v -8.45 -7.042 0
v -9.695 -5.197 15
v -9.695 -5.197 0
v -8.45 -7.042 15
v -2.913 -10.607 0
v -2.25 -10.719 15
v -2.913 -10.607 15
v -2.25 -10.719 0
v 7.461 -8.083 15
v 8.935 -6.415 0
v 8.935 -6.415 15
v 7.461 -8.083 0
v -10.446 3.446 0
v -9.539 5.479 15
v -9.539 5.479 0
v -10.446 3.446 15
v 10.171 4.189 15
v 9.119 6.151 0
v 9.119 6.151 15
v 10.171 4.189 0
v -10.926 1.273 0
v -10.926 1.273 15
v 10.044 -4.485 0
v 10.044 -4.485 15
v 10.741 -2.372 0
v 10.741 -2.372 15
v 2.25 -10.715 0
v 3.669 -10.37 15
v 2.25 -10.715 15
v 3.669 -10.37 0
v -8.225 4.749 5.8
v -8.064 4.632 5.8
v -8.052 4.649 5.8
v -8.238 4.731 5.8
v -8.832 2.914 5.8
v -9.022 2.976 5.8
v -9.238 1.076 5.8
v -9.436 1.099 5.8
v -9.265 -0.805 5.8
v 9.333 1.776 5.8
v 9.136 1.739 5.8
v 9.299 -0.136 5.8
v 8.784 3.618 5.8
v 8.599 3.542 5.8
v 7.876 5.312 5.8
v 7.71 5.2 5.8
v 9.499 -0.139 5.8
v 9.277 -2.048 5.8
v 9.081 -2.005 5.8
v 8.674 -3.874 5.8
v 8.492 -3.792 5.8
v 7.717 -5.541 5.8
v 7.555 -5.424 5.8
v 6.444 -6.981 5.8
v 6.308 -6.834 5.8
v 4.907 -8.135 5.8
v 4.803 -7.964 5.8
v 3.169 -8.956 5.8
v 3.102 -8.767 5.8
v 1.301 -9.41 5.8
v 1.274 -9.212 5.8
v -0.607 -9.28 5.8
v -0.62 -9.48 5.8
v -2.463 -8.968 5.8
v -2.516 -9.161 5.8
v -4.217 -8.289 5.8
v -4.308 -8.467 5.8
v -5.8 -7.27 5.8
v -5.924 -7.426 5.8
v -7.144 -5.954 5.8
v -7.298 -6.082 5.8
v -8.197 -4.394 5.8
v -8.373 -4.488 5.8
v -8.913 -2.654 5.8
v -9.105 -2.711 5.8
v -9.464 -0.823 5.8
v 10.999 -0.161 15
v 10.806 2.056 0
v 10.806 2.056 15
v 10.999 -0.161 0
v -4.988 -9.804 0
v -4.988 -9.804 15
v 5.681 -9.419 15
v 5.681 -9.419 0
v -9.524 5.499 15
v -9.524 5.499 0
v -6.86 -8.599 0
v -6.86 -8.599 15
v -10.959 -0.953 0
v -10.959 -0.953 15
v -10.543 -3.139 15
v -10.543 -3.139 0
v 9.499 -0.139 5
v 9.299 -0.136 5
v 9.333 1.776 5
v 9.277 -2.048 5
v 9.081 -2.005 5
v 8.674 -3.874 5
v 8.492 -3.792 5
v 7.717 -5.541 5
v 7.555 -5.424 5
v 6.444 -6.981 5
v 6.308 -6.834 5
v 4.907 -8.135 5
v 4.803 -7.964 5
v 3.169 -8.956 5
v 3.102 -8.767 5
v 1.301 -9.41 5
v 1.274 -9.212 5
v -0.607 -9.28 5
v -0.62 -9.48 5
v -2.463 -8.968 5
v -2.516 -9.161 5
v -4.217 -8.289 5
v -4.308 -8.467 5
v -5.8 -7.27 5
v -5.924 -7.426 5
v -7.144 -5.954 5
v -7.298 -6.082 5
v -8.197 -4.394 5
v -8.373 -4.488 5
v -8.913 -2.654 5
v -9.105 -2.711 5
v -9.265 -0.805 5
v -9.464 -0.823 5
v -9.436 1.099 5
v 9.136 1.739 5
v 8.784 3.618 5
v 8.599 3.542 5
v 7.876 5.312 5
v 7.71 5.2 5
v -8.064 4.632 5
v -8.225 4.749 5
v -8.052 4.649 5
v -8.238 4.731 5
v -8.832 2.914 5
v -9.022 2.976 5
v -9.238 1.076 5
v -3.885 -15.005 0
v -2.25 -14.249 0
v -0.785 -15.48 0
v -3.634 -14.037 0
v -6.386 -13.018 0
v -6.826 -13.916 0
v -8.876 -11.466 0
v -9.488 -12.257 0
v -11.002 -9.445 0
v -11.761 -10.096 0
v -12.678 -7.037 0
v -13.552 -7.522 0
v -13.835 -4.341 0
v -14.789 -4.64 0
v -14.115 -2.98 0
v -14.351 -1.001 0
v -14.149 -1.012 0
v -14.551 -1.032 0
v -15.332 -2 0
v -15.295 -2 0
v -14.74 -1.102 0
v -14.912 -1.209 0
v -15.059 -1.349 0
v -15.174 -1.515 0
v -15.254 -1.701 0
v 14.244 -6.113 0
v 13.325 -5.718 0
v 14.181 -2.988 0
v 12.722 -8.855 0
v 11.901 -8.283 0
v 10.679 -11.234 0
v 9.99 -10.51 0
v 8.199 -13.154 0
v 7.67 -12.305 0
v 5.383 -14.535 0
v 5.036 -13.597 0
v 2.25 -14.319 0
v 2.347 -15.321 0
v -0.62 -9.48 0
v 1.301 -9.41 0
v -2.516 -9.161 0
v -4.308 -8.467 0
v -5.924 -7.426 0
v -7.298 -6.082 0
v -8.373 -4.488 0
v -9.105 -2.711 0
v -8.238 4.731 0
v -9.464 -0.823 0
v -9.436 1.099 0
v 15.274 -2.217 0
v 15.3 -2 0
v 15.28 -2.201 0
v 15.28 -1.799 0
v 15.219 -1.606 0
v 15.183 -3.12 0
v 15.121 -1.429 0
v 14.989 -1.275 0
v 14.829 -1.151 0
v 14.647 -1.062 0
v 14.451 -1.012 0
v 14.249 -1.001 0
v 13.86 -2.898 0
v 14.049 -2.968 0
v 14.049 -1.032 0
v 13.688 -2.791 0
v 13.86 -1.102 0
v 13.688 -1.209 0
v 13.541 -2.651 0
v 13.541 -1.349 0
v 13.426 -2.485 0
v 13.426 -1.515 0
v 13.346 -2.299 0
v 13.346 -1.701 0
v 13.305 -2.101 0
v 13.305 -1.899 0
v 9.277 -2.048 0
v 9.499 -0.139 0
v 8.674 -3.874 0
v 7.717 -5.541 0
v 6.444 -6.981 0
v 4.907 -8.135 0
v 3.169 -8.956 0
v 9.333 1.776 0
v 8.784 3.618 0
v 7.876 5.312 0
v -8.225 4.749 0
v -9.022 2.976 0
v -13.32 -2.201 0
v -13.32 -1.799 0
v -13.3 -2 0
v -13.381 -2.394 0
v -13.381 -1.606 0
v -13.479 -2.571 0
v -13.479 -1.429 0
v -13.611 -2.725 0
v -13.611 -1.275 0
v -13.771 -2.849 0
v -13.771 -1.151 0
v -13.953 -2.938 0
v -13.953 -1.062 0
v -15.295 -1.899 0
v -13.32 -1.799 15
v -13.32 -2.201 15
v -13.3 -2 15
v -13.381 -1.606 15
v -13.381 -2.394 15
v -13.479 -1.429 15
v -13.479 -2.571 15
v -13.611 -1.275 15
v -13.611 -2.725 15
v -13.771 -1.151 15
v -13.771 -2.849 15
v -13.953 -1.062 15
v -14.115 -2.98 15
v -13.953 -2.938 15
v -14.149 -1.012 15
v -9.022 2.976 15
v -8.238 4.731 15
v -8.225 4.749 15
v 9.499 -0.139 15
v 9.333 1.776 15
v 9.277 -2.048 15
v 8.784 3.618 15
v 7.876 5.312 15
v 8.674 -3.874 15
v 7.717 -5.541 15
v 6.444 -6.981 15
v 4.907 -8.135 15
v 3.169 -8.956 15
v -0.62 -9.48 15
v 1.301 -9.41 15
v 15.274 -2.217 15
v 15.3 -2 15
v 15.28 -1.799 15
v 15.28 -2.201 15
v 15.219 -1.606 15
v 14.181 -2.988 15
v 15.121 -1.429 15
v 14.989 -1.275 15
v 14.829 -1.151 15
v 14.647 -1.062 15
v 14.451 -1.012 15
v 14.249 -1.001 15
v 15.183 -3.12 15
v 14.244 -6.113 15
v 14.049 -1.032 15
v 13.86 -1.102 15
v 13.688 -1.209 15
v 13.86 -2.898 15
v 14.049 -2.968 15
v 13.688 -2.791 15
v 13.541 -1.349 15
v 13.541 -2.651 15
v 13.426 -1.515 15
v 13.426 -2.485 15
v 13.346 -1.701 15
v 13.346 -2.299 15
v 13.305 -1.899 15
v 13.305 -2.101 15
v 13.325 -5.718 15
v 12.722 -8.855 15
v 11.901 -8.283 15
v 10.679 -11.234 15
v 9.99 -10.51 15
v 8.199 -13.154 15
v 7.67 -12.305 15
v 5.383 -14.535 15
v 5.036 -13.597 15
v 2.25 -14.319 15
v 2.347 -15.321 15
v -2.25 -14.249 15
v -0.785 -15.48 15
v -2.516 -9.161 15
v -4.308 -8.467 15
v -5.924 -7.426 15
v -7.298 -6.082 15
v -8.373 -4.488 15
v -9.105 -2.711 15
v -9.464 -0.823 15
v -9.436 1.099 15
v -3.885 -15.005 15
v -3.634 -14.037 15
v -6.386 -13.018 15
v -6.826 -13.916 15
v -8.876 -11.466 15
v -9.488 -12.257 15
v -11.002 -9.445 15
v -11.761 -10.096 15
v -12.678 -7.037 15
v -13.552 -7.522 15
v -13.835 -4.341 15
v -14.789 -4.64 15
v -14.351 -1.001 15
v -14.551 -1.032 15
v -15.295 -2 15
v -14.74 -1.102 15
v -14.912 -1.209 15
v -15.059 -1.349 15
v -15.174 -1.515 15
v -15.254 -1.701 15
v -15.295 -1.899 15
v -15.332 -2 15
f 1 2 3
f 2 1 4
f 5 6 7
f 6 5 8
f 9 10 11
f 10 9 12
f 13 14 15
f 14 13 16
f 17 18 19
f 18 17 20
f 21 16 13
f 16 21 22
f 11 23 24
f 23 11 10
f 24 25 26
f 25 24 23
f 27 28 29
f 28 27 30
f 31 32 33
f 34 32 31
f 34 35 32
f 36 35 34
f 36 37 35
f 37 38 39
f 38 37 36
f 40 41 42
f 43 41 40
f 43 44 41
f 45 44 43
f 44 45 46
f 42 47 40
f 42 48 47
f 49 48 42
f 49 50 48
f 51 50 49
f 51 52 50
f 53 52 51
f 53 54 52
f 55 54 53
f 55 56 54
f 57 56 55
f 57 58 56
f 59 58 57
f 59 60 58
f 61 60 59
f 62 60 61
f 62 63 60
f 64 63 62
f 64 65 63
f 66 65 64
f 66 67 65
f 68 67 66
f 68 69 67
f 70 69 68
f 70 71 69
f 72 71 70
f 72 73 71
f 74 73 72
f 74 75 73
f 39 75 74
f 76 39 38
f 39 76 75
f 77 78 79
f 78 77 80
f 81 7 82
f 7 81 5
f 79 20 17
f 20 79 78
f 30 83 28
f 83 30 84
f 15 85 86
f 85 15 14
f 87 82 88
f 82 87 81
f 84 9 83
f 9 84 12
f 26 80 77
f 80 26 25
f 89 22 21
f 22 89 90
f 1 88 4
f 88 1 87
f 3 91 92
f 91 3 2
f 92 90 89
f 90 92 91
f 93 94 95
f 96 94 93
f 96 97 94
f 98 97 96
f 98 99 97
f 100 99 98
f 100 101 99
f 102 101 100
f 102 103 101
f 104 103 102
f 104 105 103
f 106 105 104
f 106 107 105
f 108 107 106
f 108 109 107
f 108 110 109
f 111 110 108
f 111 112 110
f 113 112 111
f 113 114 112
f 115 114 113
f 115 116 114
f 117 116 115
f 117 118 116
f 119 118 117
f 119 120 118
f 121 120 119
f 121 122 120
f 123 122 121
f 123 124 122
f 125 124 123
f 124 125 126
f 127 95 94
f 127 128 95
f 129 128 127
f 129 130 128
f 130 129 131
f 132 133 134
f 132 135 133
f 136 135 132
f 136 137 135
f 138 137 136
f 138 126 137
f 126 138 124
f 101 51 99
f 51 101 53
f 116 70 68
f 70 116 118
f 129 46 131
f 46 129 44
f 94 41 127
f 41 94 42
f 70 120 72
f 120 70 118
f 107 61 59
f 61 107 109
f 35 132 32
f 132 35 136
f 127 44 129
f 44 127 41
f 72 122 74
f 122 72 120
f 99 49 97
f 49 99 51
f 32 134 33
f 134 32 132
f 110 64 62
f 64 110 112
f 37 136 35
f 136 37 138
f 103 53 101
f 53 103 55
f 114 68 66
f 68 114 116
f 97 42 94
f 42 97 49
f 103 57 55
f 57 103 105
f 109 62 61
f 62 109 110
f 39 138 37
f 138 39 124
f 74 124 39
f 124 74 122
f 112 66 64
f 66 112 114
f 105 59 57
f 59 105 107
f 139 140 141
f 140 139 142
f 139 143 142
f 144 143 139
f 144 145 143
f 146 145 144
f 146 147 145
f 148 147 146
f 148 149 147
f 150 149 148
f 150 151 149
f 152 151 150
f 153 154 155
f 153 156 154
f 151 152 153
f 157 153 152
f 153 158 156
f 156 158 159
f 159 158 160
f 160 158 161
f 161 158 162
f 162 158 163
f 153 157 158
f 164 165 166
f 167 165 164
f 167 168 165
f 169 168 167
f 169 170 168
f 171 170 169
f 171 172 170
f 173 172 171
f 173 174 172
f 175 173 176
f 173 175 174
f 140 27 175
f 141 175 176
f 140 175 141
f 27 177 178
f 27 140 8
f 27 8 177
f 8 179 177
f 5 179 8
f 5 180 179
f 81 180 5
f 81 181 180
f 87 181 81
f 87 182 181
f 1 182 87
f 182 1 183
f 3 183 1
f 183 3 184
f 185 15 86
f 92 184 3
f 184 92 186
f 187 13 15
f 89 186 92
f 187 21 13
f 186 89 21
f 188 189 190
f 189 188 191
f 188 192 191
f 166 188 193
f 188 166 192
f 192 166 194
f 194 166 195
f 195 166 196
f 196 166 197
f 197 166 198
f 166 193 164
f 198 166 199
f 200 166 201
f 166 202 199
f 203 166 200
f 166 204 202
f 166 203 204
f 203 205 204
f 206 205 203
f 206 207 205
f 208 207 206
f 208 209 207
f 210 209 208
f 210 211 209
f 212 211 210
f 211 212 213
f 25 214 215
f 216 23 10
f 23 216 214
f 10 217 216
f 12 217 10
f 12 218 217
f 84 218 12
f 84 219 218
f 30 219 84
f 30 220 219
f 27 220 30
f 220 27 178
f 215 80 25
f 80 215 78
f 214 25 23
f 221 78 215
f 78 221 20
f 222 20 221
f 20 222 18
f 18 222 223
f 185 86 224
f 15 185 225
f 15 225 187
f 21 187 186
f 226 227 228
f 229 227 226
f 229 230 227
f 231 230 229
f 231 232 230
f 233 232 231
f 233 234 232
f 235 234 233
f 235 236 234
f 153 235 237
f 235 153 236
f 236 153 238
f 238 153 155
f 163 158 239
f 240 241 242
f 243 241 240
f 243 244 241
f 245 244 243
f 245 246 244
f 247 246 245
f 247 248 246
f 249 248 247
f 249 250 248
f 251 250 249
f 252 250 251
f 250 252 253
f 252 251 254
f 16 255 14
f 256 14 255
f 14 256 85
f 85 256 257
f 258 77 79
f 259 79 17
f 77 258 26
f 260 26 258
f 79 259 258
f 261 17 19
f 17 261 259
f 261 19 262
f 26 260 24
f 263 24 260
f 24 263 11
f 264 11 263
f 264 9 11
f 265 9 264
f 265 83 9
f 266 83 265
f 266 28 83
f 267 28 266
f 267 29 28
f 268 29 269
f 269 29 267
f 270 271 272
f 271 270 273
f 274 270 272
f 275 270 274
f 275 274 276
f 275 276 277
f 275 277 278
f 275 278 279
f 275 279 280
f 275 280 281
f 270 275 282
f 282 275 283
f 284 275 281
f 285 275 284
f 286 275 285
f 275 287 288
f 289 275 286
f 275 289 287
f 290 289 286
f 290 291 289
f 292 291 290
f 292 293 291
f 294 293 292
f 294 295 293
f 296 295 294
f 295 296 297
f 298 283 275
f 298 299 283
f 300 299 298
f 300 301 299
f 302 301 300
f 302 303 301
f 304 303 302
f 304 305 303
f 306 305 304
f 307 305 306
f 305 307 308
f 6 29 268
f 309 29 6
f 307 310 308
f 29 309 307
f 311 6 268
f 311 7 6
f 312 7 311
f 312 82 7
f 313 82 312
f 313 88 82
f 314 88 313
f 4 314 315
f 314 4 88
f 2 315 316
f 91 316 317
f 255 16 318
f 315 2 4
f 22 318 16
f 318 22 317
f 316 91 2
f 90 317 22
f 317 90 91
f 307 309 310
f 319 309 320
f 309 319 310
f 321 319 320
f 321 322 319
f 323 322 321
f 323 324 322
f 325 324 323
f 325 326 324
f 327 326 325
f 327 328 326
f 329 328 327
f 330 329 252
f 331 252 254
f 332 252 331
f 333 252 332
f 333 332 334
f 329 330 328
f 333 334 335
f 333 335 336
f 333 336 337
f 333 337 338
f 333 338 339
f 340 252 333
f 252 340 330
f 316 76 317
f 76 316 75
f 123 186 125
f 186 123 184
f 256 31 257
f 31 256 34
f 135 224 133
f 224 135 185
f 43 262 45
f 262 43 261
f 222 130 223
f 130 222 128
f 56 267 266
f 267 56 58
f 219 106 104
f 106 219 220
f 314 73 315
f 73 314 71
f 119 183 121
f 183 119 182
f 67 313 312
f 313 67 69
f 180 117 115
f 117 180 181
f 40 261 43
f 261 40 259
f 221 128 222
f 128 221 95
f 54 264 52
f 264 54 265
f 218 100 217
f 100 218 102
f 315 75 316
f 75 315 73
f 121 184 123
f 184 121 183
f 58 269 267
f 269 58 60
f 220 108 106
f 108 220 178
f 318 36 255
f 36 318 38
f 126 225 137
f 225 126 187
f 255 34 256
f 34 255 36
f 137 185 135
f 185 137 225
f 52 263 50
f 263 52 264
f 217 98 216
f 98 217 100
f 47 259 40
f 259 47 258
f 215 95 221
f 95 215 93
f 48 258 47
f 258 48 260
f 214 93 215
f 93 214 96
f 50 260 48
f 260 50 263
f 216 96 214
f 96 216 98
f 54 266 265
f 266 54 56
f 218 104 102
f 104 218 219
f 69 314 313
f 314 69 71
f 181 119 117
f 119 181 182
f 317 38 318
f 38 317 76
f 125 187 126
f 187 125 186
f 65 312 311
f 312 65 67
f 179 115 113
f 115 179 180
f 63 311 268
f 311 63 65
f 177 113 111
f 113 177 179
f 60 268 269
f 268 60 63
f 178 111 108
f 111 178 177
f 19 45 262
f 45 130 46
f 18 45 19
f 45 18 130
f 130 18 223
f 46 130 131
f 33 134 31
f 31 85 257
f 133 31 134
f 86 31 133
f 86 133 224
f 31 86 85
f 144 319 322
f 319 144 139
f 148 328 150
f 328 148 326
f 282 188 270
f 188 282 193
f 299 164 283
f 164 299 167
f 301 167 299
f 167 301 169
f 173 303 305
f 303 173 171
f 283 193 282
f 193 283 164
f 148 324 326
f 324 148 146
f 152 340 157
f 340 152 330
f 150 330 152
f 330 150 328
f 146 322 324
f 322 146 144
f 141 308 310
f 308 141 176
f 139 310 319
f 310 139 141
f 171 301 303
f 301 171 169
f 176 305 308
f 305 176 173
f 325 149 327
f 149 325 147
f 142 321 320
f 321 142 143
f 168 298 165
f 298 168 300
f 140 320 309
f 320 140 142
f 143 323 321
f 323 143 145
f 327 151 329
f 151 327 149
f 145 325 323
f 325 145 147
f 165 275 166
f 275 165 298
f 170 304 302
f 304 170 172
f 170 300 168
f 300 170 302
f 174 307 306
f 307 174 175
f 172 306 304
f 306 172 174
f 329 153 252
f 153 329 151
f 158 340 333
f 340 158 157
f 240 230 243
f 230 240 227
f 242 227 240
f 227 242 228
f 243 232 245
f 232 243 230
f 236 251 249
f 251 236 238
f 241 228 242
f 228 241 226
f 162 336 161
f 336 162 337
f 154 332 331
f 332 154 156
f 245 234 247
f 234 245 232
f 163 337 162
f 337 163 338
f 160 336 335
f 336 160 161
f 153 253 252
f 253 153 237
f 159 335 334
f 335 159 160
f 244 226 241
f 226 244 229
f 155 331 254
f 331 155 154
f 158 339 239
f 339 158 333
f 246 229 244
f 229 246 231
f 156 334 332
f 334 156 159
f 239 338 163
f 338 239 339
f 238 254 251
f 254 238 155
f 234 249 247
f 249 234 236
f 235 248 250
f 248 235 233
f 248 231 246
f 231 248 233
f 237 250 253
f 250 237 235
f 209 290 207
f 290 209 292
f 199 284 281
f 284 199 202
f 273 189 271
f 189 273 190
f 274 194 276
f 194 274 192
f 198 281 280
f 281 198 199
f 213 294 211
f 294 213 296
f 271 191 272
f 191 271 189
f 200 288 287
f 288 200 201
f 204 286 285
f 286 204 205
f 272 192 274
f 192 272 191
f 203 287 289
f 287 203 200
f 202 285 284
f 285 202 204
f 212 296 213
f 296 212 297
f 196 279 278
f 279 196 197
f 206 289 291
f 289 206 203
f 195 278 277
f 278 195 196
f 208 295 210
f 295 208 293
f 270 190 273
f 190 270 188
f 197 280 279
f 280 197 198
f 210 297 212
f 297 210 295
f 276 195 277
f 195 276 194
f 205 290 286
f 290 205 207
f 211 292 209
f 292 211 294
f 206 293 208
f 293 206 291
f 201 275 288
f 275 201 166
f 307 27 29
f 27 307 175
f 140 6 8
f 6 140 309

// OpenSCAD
/*
The MIT License (MIT)

Copyright (c) 2021 Shinichi Ohki.

Permission is hereby granted, free of charge, to any person obtaining a copy
of this software and associated documentation files (the "Software"), to deal
in the Software without restriction, including without limitation the rights
to use, copy, modify, merge, publish, distribute, sublicense, and/or sell
copies of the Software, and to permit persons to whom the Software is
furnished to do so, subject to the following conditions:

The above copyright notice and this permission notice shall be included in
all copies or substantial portions of the Software.

THE SOFTWARE IS PROVIDED "AS IS", WITHOUT WARRANTY OF ANY KIND, EXPRESS OR
IMPLIED, INCLUDING BUT NOT LIMITED TO THE WARRANTIES OF MERCHANTABILITY,
FITNESS FOR A PARTICULAR PURPOSE AND NONINFRINGEMENT. IN NO EVENT SHALL THE
AUTHORS OR COPYRIGHT HOLDERS BE LIABLE FOR ANY CLAIM, DAMAGES OR OTHER
LIABILITY, WHETHER IN AN ACTION OF CONTRACT, TORT OR OTHERWISE, ARISING FROM,
OUT OF OR IN CONNECTION WITH THE SOFTWARE OR THE USE OR OTHER DEALINGS IN
THE SOFTWARE.
*/

$fn = 31;
R = 19; // パイプの直径
h = 15; // 高さ
r = R/2; // パイプの半径
T1 = 1.5; // 内側の肉厚
T2 = 1; // 外側の肉厚
c = 4; // ケーブルを挟む幅

// 外側の殻の部分
module shell() {
    difference() {
        cylinder(h,r+T2+T2+c,r+T2+T2+c); // 外側
        translate([0,0,-0.001]) {
            cylinder(h+0.002,r+T2+c,r+T2+c); // 内側
        }
        translate([-r*2,-2,-0.001]) {
            cube([r*4,r*2,h+0.002]); // 半円形にするため
        }
    }
    translate([-(r+c+T2-0.2),-T2-1,0]) cylinder(h,T2,T2); // コードが外れないようにする部分
    translate([(r+c+T2-0.2),-T2-1,0]) cylinder(h,T2,T2); // コードが外れないようにする部分
}

// 内側のパイプ部分
module pipe() {
    translate([0,0,5]) difference() { // ストッパーとなる内側出っぱりを作る
        cylinder(0.8,r+T1,r+T1); // 外側
        translate([0,0,-0.001]) {
            cylinder(0.81,r-0.2,r-0.2); // 内側
        }
    }
    difference() {
        cylinder(h,r+T1,r+T1); // 外側
        translate([0,0,-0.001]) {
            cylinder(h+0.002,r,r); // 内側
        }
    }
}

// 内側のパイプ部分から入り口を削る
module grip() {
    rotate([0,0,34]) { // 外側と角度を合わせるために回す
        difference() {
            pipe();
            translate([0,0,-0.001]) {
                cube([r+3,r+3,h+0.002]);
                rotate([0,0,26]) cube([r+3,r+3,h+0.002]);
            }
        }
    }
}

module unit() {
    shell();
    grip();
    translate([-(T1+3)/2,0-(r+T1+c),0]) cube([T1+3,T1+c,h]); // 内外をつなぐための柱
}

unit();
